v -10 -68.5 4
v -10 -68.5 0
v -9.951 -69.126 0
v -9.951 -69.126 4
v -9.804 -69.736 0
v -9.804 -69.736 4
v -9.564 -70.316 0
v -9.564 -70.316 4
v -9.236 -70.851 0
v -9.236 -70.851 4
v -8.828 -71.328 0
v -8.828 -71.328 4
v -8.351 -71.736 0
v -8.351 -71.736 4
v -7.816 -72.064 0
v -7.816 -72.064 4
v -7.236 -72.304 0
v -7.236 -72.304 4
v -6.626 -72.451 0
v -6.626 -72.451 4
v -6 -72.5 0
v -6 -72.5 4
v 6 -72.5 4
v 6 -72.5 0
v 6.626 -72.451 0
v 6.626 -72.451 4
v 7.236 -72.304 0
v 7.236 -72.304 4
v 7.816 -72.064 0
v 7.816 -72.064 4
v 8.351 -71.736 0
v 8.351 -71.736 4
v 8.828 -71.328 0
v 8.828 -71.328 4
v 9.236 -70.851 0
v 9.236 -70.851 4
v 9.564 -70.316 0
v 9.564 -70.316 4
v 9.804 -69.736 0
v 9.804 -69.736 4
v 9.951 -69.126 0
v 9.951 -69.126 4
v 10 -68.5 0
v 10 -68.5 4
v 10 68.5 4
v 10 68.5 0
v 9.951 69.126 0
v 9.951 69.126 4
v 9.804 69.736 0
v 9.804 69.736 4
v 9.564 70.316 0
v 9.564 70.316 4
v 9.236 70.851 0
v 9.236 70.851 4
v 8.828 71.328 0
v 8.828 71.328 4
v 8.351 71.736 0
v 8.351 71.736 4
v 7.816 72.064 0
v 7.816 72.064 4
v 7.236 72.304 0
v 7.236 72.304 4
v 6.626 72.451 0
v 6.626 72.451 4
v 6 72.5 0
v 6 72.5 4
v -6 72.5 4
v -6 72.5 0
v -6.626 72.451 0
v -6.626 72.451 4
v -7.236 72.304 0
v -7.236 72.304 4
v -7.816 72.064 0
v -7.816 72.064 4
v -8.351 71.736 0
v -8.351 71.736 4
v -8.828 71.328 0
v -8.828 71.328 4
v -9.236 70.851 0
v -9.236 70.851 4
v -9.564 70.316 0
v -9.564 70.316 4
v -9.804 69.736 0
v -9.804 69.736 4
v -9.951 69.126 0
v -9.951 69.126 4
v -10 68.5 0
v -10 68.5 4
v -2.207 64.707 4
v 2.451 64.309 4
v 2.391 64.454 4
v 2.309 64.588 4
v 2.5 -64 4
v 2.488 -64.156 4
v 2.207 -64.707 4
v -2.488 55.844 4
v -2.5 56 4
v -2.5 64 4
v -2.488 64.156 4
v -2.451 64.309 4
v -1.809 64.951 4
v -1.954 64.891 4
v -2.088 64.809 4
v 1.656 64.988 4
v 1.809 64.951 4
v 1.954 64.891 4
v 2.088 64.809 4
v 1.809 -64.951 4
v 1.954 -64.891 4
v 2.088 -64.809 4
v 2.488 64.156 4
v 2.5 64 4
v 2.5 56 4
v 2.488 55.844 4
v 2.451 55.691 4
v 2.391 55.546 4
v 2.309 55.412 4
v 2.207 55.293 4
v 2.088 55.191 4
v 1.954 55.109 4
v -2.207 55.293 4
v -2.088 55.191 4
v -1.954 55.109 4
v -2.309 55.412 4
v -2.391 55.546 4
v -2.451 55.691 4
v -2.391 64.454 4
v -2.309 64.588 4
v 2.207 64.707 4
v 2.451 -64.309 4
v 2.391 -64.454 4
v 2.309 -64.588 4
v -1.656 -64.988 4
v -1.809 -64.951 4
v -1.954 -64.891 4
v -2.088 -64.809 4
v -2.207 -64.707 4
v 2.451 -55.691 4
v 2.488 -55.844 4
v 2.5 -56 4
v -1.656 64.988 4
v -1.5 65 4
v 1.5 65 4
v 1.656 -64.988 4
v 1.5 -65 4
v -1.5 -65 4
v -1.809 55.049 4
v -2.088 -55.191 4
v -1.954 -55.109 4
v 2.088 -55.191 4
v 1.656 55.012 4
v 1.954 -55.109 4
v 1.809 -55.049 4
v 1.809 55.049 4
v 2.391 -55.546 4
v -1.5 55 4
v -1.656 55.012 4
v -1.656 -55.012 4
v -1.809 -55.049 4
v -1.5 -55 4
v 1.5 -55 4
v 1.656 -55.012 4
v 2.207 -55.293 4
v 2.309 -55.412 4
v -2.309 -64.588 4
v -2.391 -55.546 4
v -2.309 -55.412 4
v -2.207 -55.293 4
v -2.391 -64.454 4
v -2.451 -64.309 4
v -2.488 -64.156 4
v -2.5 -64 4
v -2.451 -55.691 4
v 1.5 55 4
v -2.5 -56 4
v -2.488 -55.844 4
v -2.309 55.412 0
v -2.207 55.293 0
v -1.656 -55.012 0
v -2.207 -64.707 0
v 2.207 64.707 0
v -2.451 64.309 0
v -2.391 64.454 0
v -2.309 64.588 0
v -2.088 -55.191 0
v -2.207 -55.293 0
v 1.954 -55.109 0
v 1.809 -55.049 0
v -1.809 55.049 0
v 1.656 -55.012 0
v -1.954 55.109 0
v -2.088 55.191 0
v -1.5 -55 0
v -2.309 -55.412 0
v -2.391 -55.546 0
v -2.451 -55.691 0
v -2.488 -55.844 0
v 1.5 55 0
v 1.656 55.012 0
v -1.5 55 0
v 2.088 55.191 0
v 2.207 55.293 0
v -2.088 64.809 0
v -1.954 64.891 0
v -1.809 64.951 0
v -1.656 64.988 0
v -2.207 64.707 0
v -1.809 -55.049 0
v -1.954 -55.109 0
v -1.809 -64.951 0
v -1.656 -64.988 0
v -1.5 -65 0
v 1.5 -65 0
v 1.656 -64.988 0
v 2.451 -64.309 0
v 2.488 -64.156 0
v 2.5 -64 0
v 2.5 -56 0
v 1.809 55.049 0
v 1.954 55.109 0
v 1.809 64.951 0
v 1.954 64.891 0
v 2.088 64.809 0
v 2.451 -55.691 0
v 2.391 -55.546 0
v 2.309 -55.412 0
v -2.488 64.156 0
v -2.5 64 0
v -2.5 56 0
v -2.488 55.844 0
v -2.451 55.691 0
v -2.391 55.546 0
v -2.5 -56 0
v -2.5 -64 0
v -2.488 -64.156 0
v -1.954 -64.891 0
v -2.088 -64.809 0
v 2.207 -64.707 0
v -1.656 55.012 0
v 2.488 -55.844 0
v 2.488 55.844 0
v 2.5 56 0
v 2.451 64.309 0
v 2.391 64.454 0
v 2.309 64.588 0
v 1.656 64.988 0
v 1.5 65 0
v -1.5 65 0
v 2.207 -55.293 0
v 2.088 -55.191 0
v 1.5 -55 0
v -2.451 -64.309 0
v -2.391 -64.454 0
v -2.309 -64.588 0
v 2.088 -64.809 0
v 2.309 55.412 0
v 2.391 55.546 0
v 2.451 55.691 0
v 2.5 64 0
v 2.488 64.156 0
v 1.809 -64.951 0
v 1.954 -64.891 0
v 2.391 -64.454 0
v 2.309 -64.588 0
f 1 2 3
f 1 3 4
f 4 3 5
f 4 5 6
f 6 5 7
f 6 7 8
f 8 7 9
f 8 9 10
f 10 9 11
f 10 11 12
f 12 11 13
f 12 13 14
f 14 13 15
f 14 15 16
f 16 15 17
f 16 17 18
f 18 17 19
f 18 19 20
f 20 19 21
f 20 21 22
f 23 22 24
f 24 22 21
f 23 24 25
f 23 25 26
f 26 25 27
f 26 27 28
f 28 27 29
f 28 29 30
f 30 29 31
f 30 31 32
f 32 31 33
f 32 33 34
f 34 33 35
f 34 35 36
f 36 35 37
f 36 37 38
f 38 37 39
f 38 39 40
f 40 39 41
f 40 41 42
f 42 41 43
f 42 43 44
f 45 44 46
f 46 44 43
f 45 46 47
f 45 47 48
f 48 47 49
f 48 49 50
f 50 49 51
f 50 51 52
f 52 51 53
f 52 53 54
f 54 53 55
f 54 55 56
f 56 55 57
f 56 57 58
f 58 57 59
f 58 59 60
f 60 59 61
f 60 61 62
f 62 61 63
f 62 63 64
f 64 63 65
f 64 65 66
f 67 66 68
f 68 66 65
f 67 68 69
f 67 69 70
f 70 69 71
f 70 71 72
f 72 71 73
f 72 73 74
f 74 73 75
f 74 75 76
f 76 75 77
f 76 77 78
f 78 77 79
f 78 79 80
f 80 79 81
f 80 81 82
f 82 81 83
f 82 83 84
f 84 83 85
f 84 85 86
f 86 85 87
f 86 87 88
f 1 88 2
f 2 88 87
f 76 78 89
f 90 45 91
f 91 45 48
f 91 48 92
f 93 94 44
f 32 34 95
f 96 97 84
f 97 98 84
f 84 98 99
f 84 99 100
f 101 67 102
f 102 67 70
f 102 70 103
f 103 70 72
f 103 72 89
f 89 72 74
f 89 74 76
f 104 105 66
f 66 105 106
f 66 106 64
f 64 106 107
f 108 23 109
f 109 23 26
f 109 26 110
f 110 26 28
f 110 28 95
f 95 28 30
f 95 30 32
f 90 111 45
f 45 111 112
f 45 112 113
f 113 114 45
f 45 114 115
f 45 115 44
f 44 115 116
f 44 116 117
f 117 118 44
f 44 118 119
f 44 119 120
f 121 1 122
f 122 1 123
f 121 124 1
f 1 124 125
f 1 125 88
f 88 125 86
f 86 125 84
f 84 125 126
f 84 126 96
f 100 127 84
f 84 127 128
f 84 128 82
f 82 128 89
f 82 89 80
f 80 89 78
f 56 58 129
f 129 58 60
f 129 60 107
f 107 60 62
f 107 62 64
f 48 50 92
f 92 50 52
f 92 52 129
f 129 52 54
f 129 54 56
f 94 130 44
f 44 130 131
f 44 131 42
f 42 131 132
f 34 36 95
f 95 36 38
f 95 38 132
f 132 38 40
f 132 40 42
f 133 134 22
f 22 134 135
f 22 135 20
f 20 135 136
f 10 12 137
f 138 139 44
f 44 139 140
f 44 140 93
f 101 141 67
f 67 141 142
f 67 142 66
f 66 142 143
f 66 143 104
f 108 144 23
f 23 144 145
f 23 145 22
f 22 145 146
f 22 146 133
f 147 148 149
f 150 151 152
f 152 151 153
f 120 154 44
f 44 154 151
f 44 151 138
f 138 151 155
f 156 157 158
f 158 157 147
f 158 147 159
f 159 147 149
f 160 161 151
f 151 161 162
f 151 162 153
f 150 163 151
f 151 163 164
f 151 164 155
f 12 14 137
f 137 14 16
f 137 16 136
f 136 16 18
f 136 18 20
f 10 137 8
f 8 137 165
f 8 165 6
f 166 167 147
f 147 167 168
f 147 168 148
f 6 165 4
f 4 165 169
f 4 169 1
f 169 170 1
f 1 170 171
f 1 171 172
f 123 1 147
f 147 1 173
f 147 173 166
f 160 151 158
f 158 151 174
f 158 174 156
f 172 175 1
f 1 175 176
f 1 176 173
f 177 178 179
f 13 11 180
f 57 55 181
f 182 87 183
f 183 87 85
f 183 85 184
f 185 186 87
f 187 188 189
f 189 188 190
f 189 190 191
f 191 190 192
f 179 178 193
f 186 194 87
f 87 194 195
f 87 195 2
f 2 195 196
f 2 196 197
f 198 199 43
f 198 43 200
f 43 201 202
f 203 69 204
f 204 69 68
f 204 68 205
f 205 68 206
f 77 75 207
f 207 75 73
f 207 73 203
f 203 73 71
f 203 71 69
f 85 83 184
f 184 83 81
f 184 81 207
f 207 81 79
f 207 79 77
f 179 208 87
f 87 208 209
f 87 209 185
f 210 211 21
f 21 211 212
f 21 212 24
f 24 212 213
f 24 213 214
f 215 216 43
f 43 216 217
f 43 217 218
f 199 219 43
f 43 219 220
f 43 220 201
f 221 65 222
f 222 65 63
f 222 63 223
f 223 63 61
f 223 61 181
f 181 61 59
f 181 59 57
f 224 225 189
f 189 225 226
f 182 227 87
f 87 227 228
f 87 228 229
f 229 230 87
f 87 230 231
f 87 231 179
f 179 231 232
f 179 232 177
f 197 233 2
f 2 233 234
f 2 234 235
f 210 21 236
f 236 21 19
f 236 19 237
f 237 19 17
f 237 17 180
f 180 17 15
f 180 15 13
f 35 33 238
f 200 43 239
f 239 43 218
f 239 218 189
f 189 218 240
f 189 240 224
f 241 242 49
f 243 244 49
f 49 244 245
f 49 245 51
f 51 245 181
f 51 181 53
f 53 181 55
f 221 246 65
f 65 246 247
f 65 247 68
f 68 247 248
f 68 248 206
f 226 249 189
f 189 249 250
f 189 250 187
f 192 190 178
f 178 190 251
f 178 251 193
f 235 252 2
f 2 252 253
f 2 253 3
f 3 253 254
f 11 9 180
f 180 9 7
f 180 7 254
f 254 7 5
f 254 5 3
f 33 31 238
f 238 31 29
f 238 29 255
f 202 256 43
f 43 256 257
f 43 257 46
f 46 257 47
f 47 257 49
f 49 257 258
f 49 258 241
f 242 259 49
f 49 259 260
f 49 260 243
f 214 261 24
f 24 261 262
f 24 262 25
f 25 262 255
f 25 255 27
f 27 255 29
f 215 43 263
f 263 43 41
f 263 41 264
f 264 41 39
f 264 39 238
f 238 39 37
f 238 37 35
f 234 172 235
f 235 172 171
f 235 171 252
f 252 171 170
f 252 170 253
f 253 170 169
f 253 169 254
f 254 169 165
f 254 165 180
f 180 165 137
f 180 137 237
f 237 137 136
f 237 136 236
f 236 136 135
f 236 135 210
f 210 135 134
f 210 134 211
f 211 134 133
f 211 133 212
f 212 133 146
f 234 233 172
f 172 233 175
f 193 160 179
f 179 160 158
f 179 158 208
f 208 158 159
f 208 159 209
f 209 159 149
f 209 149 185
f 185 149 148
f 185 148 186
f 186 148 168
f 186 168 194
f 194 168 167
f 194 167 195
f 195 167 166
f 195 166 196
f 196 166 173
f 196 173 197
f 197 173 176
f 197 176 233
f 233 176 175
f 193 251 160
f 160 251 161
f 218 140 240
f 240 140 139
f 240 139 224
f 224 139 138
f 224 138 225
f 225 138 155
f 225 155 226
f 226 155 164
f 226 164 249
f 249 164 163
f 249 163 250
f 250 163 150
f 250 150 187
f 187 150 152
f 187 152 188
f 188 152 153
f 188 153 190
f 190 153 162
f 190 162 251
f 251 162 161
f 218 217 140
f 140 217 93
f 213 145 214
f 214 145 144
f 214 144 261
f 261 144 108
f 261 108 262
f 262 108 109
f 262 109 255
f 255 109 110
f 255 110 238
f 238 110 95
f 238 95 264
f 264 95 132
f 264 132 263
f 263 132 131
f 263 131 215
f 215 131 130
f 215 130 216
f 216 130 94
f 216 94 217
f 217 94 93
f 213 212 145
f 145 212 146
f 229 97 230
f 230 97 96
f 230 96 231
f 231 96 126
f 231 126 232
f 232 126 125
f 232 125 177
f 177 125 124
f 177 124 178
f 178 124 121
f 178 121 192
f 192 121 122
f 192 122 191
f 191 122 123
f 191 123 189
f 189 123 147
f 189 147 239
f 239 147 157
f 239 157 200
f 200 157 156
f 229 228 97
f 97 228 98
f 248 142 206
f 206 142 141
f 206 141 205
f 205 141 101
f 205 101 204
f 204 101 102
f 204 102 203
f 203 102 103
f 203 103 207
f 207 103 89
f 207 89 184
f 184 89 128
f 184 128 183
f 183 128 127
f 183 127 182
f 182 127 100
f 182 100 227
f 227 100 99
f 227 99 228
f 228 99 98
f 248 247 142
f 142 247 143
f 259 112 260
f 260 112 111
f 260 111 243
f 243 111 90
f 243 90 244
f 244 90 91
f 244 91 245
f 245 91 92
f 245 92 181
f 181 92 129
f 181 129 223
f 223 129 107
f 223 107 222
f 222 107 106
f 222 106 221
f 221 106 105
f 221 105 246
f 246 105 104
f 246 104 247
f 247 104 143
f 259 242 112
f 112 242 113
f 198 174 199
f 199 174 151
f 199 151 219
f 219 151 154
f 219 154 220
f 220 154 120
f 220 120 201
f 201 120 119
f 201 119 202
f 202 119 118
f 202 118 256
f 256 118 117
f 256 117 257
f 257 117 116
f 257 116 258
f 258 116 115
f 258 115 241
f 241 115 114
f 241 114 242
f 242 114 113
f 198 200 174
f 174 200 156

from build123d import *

# Parameters (mm, degrees)
BOSS_EXTRU_1_DEPTH      = 4
ENL_V_MAT_EXTRU_1_DEPTH = 74.295634249


with BuildPart() as part:
    # Esquisse1 → Boss.-Extru.1 (new body)
    with BuildSketch(Plane.XY):
        with BuildLine():
            Line((-6, -72.5), (6, -72.5))
            ThreePointArc((6, -72.5), (8.828427125, -71.328427125), (10, -68.5))
            Line((10, -68.5), (10, 68.5))
            ThreePointArc((10, 68.5), (8.828427125, 71.328427125), (6, 72.5))
            Line((6, 72.5), (-6, 72.5))
            ThreePointArc((-6, 72.5), (-8.828427125, 71.328427125), (-10, 68.5))
            Line((-10, 68.5), (-10, -68.5))
            ThreePointArc((-10, -68.5), (-8.828427125, -71.328427125), (-6, -72.5))
        make_face()
    extrude(amount=BOSS_EXTRU_1_DEPTH)

    # Esquisse2 → Enlèv. mat.-Extru.1 (cut, through all)
    with BuildSketch(Plane.XY.offset(4)):
        with BuildLine():
            Line((-2.5, -64), (-2.5, -56))
            ThreePointArc((-2.5, -56), (-2.207106781, -55.292893219), (-1.5, -55))
            Line((-1.5, -55), (1.5, -55))
            ThreePointArc((1.5, -55), (2.207106781, -55.292893219), (2.5, -56))
            Line((2.5, -56), (2.5, -64))
            ThreePointArc((2.5, -64), (2.207106781, -64.707106781), (1.5, -65))
            Line((1.5, -65), (-1.5, -65))
            ThreePointArc((-1.5, -65), (-2.207106781, -64.707106781), (-2.5, -64))
        make_face()
        with BuildLine():
            Line((-2.5, 56), (-2.5, 64))
            ThreePointArc((-2.5, 64), (-2.207106781, 64.707106781), (-1.5, 65))
            Line((-1.5, 65), (1.5, 65))
            ThreePointArc((1.5, 65), (2.207106781, 64.707106781), (2.5, 64))
            Line((2.5, 64), (2.5, 56))
            ThreePointArc((2.5, 56), (2.207106781, 55.292893219), (1.5, 55))
            Line((1.5, 55), (-1.5, 55))
            ThreePointArc((-1.5, 55), (-2.207106781, 55.292893219), (-2.5, 56))
        make_face()
    extrude(amount=-ENL_V_MAT_EXTRU_1_DEPTH, mode=Mode.SUBTRACT)


solid = part.part
